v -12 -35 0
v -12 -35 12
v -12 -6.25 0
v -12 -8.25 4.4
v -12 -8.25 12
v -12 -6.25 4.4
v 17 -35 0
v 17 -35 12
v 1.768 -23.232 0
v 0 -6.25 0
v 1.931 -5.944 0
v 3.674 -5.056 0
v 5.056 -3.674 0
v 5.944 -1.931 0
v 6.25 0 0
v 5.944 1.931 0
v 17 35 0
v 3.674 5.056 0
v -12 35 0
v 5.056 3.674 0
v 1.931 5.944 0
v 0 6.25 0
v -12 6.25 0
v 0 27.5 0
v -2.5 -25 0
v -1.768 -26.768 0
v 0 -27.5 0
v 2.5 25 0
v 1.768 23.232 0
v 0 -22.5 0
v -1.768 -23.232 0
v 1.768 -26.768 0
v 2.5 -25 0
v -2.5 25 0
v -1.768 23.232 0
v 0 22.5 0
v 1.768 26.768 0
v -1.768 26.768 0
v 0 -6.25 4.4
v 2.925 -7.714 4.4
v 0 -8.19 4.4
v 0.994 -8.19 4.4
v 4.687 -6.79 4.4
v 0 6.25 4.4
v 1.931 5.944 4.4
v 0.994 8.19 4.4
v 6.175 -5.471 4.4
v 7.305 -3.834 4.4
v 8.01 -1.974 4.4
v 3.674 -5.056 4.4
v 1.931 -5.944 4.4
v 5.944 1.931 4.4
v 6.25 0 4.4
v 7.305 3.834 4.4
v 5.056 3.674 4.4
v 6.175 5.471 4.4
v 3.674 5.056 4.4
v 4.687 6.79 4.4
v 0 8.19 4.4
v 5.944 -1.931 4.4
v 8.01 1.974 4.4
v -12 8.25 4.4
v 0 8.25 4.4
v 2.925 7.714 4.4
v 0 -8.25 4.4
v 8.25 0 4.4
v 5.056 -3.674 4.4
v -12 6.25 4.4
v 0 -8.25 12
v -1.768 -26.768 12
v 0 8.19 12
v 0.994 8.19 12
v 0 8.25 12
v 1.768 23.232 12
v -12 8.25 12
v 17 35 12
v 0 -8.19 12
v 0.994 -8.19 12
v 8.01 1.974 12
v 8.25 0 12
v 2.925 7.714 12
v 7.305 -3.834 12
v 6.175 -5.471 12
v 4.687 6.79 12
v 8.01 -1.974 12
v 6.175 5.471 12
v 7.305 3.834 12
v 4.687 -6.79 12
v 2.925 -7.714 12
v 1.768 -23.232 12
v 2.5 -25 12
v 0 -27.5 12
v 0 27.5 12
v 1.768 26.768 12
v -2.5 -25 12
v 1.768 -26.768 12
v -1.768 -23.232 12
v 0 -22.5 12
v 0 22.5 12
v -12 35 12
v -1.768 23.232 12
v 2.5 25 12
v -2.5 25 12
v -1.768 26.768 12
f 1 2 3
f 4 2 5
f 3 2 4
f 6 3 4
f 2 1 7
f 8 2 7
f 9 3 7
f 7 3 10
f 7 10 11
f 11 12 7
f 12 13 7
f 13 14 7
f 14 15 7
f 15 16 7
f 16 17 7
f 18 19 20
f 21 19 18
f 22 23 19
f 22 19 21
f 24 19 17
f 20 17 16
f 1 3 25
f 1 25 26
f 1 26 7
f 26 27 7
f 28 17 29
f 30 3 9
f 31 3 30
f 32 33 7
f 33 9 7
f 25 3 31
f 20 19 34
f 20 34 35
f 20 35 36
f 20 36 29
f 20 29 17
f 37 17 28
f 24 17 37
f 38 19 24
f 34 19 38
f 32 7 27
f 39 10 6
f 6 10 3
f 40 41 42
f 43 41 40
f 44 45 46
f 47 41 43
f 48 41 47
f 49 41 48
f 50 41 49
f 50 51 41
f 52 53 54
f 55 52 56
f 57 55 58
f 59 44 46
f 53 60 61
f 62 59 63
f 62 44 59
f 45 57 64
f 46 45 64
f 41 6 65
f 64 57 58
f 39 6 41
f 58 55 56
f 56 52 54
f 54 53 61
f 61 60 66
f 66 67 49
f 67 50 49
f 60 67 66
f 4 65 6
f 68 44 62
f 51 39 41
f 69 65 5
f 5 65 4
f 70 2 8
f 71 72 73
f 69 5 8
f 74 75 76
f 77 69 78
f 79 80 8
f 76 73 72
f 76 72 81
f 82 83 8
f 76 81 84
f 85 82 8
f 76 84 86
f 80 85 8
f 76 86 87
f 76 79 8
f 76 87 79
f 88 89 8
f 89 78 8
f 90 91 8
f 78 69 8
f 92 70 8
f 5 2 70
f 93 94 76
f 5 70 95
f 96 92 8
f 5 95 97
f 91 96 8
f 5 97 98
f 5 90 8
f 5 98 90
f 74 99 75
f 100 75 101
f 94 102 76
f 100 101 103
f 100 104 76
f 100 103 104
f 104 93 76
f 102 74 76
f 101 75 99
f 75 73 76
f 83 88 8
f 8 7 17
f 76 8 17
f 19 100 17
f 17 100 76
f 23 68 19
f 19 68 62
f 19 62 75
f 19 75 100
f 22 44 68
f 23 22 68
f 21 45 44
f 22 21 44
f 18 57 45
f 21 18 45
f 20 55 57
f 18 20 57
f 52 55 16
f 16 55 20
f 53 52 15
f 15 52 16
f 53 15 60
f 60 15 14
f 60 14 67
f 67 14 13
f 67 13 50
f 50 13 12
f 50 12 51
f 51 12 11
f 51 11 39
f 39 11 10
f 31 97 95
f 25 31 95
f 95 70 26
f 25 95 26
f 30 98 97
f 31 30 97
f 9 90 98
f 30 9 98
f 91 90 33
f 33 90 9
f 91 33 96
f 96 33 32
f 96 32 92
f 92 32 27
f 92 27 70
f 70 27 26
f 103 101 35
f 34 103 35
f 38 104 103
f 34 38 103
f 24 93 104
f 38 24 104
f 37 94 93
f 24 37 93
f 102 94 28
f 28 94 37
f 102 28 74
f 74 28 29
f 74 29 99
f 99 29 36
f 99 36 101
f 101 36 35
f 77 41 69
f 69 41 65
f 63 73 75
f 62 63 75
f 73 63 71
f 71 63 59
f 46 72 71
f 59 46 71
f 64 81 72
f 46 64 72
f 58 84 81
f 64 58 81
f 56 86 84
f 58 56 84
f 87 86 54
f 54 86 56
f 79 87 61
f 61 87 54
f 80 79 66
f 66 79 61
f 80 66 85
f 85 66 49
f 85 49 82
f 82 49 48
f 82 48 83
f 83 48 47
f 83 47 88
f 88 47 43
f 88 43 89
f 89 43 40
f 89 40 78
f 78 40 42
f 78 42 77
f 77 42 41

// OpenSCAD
difference(){
translate([-12,-35,0])cube(size=[29,70,12], center=false);

translate([-10,0,5])cube(size=[20,12.5,15], center=true);
translate([-10,0,5+4.4])cube(size=[20,16.5,10], center=true);

cylinder(h=20, r=12.5/2);
translate([0,0,4.4])cylinder(h=20, r=16.5/2);
translate([0,-25,0])cylinder(h=20, r=5/2);
translate([0,25,0])cylinder(h=20, r=5/2);
}
